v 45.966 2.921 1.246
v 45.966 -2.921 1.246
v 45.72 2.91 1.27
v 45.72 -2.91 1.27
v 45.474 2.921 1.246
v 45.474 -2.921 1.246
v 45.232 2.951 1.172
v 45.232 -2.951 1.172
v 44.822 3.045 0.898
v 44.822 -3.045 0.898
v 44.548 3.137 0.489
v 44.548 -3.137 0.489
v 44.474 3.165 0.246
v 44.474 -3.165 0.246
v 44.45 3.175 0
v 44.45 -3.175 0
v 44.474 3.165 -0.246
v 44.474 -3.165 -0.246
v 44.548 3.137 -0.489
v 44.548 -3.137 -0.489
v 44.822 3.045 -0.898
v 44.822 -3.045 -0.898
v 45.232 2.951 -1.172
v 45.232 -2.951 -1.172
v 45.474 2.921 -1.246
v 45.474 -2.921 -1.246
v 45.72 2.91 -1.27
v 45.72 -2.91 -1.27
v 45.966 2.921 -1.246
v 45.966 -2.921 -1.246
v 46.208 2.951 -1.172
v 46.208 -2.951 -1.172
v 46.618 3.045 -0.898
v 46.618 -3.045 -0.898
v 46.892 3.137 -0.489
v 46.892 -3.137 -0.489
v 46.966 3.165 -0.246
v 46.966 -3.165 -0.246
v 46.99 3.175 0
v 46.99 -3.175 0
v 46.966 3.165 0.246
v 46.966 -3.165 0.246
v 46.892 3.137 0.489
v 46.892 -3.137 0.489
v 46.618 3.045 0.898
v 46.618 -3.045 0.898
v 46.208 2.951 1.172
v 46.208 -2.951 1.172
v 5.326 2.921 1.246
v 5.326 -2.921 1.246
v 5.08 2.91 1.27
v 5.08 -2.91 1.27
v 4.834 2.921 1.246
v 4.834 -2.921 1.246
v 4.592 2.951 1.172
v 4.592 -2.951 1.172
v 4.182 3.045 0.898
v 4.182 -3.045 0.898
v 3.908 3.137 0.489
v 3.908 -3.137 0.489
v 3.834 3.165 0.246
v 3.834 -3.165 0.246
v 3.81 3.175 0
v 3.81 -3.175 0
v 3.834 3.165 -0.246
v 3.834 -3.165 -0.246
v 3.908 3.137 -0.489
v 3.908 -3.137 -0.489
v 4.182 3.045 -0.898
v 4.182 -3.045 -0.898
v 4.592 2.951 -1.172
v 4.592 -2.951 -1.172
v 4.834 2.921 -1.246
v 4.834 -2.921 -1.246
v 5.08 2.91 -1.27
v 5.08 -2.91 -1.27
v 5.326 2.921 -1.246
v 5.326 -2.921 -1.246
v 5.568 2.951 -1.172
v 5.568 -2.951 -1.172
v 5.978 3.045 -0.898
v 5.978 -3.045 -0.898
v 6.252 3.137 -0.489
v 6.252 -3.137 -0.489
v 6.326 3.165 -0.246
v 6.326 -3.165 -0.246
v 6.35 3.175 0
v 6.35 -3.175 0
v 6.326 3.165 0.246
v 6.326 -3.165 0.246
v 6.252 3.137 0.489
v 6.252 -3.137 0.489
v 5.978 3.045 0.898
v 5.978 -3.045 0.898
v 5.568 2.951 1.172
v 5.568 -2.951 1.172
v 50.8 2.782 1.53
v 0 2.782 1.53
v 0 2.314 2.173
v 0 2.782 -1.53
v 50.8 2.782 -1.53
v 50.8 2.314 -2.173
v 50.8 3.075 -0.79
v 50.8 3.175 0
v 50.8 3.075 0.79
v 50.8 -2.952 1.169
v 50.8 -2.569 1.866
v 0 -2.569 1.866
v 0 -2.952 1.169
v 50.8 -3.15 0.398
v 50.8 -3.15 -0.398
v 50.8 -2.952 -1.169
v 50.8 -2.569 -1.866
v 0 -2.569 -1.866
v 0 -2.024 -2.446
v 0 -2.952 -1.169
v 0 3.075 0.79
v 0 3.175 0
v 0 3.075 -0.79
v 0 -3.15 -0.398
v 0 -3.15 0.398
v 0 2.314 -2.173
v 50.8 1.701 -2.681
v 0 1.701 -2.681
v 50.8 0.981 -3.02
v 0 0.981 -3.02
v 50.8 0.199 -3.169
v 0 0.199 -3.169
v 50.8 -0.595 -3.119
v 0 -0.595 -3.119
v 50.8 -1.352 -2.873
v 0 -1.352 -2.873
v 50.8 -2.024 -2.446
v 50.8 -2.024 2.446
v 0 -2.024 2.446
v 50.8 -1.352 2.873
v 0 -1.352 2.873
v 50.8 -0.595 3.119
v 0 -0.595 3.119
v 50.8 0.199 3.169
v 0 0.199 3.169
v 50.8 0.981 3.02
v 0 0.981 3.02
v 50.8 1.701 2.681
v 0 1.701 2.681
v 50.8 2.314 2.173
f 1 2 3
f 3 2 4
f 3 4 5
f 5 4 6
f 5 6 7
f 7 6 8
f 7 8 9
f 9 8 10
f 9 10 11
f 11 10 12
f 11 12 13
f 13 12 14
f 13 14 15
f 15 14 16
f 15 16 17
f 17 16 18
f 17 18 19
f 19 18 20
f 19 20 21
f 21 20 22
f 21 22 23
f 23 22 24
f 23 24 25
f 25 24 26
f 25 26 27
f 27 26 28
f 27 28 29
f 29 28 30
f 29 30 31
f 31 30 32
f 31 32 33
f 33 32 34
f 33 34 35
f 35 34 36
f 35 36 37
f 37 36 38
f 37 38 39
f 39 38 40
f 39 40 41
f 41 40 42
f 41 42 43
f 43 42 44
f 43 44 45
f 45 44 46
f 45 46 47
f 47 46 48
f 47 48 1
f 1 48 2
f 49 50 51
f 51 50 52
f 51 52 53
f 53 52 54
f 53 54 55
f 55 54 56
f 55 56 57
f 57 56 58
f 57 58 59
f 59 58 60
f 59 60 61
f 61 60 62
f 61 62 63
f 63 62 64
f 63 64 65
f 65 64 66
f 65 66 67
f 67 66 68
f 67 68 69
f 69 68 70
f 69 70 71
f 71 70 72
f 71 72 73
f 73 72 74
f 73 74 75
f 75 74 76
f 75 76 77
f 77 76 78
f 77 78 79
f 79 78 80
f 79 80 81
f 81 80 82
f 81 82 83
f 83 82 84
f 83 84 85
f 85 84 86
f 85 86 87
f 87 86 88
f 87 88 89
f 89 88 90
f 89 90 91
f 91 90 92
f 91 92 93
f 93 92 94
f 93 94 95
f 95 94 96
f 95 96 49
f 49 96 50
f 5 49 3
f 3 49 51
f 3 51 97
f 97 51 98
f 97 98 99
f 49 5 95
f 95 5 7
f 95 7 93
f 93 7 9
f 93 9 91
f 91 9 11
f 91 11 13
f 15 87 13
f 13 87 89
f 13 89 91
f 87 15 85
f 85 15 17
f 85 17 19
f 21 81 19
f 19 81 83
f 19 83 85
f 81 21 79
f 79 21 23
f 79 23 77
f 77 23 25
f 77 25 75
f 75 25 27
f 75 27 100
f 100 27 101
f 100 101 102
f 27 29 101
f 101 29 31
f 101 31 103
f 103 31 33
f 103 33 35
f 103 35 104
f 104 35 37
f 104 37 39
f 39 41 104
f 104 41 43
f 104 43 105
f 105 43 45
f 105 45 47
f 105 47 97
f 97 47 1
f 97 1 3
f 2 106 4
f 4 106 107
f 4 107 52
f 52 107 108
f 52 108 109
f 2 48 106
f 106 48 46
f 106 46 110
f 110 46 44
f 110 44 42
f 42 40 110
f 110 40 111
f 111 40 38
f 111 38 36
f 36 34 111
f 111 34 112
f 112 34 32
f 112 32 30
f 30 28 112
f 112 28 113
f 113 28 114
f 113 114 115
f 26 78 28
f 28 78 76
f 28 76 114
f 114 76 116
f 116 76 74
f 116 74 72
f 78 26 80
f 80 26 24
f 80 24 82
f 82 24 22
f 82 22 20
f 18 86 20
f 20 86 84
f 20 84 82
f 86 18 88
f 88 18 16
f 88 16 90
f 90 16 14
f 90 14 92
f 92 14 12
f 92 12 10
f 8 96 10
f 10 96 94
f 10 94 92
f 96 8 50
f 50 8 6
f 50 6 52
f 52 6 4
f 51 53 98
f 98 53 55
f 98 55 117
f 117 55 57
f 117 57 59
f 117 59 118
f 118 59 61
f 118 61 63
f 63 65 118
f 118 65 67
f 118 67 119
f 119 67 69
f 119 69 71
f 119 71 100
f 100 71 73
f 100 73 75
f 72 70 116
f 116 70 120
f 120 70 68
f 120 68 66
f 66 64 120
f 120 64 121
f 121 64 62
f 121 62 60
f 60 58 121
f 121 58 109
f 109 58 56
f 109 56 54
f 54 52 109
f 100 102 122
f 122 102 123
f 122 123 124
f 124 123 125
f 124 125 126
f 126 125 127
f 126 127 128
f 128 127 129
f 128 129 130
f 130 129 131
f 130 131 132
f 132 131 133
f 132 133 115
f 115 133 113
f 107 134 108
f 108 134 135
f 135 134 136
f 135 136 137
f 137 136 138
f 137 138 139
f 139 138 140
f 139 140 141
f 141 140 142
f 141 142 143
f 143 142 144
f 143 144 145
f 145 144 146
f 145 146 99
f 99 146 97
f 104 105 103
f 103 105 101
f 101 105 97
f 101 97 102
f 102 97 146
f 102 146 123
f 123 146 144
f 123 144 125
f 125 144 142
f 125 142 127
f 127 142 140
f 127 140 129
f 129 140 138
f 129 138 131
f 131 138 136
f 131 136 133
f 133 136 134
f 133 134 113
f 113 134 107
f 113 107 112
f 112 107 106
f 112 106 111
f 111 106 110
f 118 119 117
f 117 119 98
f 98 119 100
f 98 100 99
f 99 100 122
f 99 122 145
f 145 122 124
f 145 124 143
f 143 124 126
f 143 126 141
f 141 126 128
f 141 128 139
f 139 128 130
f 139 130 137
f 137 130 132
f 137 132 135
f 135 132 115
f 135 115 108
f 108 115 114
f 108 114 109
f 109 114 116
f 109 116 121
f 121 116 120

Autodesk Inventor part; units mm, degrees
ref_plane "YZ Plane" through (0, 0, 0) normal (1, 0, 0) x (0, 1, 0)
ref_plane "XZ Plane" through (0, 0, 0) normal (0, 1, 0) x (-1, 0, 0)
ref_plane "XY Plane" through (0, 0, 0) normal (0, 0, 1) x (1, 0, 0)
sketch "Sketch1" plane through (0, 0, 0) normal (1, 0, 0) x (0, 1, 0)
  circle A0 centre (0, 0) radius 3.175
  dimension "d0" = 6.35
extrude "Extrusion1" add sketch "Sketch1" along normal blind 50.8
sketch "Sketch2" plane through (0, 0, 0) normal (0, 1, 0) x (-1, 0, 0)
  circle A0 centre (-5.08, 0) radius 1.27
  line L0 (0, 3.175) -> (0, -3.175) projected
  point P0 (0, 0)
  dimension "d3" = 2.54
  dimension "d4" = 5.08
extrude "Extrusion2" cut sketch "Sketch2" along normal mid plane 50.8
sketch "Sketch3" plane through (0, 0, 0) normal (0, 1, 0) x (-1, 0, 0)
  circle A0 centre (-45.72, 0) radius 1.27
  line L0 (-50.8, 3.175) -> (-50.8, -3.175) projected
  point P0 (0, 0)
  dimension "d7" = 2.54
  dimension "d8" = 5.08
extrude "Extrusion3" cut sketch "Sketch3" along normal mid plane 50.8
properties part number "TIE ROD"
